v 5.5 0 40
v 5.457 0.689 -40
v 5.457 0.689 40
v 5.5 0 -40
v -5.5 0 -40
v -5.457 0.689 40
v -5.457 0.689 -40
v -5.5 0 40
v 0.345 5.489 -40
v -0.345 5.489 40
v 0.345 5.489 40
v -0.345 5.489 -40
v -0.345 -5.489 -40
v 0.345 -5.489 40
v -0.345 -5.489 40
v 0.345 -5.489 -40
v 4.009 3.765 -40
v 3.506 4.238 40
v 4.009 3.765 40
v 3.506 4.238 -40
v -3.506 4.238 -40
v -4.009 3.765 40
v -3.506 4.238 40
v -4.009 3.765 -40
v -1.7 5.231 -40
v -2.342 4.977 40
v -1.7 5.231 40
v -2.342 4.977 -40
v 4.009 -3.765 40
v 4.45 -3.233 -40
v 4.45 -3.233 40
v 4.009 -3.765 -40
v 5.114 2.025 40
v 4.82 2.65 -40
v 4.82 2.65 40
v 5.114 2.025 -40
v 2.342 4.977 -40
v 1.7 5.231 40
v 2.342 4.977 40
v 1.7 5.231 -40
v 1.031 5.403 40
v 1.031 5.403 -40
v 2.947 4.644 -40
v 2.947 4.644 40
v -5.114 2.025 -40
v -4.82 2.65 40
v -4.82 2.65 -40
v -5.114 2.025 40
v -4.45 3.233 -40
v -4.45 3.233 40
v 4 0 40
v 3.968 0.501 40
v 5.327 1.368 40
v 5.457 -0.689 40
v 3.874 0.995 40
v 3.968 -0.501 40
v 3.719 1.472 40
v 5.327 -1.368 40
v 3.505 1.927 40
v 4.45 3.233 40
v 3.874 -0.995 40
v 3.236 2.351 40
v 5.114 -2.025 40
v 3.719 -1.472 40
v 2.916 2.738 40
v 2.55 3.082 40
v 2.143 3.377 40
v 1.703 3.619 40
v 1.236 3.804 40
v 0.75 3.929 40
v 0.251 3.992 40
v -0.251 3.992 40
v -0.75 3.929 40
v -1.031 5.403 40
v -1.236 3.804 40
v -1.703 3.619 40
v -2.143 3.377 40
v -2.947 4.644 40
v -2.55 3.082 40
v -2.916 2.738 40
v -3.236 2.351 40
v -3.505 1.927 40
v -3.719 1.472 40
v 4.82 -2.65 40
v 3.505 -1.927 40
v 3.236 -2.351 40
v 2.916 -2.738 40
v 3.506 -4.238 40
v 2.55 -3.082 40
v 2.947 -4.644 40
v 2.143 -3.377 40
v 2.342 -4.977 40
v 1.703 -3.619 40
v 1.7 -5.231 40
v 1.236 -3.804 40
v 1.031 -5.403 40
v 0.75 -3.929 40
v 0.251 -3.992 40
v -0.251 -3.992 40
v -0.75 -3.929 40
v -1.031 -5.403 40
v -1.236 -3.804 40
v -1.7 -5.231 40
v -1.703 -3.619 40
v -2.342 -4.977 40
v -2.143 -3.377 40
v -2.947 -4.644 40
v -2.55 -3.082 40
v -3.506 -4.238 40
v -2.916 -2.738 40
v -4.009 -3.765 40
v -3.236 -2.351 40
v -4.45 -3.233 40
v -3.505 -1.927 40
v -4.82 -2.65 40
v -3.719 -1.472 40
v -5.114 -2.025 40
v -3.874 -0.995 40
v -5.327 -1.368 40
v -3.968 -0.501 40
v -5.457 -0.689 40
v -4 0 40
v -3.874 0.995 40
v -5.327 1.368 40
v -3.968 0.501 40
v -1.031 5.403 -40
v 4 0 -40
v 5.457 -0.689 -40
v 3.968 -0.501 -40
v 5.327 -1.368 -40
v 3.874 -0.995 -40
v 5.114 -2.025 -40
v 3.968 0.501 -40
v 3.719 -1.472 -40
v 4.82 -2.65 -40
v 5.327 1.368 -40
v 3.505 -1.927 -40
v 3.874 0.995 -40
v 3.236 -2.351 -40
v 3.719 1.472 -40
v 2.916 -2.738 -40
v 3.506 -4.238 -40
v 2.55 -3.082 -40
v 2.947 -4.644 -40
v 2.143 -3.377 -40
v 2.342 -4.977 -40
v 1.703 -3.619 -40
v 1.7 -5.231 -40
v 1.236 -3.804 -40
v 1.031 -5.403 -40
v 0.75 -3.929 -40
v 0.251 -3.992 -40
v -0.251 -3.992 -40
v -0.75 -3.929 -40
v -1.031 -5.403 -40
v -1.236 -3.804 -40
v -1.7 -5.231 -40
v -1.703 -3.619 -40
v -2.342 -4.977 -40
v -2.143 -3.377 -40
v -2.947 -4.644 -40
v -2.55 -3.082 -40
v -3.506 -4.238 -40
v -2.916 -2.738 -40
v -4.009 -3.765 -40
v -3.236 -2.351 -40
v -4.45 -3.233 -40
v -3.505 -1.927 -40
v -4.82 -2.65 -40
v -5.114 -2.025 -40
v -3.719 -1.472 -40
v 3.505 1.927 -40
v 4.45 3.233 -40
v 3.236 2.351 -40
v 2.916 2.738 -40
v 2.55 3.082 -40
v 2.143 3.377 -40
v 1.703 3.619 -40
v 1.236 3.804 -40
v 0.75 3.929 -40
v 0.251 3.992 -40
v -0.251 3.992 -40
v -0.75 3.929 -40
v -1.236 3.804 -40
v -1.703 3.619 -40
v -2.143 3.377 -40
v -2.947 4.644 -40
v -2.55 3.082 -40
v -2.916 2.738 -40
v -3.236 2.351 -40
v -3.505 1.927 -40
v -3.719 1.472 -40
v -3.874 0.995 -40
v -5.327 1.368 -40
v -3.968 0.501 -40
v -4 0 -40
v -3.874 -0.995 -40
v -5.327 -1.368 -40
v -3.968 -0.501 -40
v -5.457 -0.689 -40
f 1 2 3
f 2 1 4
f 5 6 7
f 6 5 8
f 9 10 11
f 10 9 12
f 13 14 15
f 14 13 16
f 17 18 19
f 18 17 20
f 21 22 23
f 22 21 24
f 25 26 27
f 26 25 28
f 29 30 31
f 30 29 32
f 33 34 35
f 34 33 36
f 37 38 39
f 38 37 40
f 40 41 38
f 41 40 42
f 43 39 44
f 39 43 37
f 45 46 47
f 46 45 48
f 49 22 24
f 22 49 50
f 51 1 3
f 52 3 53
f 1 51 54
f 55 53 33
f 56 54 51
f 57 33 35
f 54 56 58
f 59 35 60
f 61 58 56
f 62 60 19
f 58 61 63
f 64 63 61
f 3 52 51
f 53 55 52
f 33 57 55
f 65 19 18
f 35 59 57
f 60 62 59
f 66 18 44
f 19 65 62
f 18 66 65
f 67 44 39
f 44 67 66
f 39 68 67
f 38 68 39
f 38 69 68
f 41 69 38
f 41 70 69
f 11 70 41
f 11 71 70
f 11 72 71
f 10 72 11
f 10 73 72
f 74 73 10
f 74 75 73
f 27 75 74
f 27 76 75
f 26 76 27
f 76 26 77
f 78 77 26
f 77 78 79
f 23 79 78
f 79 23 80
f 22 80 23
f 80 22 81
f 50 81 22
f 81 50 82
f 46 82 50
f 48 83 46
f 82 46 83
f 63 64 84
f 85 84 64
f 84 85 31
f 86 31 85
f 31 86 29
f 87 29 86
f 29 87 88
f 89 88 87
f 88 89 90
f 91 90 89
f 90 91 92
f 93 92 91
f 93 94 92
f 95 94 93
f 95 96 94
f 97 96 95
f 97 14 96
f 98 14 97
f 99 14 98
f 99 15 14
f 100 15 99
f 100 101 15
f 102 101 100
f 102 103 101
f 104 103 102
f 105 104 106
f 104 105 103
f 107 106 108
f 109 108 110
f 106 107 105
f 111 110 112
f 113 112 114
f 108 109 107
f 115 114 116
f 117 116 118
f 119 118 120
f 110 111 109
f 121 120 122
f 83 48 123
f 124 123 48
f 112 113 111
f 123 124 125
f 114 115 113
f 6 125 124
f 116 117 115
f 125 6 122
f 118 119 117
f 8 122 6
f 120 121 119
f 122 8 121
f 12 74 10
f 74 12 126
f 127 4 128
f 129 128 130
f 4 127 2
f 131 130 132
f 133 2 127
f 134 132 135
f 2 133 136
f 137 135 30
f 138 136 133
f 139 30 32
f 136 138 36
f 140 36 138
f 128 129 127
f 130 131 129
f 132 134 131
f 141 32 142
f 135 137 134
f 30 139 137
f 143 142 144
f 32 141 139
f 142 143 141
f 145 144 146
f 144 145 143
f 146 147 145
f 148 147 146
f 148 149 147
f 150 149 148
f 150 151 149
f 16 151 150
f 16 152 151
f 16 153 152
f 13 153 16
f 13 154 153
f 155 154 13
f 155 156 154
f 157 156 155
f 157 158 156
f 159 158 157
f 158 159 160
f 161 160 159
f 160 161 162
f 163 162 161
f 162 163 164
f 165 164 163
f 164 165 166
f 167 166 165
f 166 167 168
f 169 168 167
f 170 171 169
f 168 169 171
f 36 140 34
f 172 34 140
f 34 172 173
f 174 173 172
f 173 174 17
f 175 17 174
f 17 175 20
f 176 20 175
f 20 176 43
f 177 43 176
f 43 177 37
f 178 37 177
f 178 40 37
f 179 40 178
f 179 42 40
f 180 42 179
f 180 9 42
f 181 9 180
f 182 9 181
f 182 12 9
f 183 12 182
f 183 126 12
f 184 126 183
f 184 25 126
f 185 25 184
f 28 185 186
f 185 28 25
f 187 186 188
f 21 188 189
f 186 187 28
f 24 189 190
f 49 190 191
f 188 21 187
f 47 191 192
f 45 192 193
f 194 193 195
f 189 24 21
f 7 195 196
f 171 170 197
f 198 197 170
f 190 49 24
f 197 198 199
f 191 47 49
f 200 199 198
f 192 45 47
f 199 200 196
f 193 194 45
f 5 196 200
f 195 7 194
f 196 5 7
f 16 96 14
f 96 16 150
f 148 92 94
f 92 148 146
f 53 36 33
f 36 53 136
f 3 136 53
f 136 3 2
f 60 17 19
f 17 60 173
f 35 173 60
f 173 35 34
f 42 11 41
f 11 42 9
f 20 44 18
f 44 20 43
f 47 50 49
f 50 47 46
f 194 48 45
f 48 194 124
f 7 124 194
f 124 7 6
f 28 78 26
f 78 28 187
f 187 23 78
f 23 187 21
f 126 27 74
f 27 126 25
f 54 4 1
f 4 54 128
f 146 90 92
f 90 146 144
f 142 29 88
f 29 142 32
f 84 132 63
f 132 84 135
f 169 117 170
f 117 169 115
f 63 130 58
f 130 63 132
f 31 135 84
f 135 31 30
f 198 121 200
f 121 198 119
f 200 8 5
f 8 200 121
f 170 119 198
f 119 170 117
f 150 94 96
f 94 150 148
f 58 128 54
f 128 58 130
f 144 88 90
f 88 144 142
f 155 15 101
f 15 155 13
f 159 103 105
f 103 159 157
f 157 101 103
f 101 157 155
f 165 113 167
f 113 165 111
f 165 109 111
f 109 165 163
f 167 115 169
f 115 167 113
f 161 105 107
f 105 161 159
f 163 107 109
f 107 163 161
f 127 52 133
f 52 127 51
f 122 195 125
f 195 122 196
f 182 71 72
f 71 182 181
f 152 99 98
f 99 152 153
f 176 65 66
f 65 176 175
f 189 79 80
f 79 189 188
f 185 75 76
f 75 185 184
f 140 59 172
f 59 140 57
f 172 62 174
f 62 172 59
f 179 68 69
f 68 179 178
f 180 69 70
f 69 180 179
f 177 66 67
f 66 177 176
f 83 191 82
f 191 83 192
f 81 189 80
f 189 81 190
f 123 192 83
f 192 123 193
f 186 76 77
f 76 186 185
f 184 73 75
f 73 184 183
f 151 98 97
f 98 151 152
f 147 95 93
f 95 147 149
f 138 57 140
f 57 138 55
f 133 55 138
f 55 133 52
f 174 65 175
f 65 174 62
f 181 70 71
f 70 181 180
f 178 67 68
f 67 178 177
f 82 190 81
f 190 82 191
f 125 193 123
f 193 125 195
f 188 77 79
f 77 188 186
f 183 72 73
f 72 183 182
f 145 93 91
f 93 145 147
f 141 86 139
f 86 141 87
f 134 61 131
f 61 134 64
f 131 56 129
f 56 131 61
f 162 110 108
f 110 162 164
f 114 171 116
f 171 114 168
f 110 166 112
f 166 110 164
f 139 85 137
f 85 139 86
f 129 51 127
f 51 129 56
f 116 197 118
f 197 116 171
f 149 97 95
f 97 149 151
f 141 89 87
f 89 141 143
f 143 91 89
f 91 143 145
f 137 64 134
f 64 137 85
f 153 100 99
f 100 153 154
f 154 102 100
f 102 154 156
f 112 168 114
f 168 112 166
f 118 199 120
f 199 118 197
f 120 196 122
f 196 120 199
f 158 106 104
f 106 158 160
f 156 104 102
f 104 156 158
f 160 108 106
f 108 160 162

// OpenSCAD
$fn = 50;


difference() {
	union() {
		translate(v = [0, 0, -40.0000000000]) {
			cylinder(h = 80, r = 5.5000000000);
		}
	}
	union() {
		translate(v = [0, 0, -100.0000000000]) {
			cylinder(h = 200, r = 4);
		}
	}
}
